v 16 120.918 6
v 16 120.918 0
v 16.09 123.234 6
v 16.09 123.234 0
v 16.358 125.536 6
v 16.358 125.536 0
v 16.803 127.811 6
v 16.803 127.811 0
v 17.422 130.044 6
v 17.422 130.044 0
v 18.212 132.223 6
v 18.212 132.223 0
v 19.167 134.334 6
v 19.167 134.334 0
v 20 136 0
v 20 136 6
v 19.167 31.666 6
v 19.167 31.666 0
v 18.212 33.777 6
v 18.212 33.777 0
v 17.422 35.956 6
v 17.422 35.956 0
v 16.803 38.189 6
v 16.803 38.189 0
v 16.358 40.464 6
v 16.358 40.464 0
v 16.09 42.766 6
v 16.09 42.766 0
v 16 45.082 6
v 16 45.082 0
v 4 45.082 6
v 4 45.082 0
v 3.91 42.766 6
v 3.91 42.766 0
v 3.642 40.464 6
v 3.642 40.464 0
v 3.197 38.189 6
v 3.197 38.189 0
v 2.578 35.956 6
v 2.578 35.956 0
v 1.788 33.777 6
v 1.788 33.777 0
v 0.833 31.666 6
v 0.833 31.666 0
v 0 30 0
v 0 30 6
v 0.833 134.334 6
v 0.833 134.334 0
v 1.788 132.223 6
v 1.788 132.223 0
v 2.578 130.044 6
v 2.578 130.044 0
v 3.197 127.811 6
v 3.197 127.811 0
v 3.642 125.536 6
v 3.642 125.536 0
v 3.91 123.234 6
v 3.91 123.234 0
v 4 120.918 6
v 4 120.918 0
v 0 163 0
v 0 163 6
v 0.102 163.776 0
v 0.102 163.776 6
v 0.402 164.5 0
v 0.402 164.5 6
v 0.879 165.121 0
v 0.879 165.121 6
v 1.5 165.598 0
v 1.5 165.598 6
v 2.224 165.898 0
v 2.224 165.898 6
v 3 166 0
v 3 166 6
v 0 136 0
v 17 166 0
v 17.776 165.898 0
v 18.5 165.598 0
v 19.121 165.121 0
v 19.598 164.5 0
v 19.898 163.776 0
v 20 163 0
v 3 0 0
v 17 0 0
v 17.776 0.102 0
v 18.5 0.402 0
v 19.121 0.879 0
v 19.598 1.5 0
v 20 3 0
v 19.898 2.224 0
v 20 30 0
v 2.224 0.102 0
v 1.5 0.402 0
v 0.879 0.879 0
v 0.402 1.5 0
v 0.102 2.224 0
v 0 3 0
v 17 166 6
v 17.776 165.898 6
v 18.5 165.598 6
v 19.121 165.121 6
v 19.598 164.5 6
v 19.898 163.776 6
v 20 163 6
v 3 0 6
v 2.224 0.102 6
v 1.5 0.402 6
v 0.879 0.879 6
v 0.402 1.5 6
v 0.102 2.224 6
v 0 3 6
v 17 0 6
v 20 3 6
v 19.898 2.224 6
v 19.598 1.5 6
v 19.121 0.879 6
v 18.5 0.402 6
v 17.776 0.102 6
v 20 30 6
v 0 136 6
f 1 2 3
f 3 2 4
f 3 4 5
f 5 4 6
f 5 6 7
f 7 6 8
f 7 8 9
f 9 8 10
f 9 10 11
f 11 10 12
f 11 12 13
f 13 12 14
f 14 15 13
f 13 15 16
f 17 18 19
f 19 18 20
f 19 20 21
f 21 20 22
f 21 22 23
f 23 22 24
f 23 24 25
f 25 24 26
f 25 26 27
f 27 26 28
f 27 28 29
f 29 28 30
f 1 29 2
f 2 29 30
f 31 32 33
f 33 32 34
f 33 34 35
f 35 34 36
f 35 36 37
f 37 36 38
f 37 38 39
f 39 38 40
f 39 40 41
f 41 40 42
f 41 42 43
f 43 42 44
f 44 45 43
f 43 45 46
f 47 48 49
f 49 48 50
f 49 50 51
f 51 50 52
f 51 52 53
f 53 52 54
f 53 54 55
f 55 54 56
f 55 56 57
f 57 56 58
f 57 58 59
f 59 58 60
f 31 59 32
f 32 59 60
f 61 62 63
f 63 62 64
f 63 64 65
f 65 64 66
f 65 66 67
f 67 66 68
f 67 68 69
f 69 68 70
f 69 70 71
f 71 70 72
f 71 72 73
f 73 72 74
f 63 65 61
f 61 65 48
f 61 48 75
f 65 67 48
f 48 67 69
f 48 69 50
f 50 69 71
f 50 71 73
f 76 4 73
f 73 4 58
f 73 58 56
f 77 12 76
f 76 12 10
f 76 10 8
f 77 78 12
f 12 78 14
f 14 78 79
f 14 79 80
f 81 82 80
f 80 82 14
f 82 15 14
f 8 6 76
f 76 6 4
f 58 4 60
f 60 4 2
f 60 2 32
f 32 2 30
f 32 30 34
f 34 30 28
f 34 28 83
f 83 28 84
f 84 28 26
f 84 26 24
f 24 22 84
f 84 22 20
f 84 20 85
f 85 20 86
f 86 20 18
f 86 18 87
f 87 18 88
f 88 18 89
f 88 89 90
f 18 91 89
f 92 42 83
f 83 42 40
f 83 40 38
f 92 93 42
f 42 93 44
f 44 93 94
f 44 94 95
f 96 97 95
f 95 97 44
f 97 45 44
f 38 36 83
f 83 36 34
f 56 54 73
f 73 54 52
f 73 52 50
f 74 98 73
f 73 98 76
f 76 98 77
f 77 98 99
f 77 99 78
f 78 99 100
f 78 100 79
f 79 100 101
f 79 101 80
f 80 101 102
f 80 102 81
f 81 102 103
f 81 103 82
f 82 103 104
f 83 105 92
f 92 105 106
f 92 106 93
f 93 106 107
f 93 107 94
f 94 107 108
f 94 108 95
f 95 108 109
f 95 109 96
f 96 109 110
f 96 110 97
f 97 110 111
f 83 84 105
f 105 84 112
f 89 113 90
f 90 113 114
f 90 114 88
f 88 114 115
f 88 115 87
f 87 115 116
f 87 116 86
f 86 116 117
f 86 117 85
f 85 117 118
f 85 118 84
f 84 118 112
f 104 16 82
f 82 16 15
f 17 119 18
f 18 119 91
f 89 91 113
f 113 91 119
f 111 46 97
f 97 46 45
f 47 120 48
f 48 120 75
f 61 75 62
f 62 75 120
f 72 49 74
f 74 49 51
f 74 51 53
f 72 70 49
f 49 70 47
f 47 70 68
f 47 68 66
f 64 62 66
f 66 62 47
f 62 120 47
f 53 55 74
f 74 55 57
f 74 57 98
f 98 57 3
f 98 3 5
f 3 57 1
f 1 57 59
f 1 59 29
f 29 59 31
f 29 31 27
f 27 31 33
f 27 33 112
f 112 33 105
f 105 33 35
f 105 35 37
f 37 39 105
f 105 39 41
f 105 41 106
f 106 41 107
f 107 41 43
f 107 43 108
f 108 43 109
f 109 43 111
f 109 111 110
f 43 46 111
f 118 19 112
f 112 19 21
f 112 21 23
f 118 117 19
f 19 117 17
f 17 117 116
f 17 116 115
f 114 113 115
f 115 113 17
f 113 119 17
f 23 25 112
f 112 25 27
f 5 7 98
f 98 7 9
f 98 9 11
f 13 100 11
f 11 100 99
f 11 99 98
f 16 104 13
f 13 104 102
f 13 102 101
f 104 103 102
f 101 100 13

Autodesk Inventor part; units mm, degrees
ref_plane "YZ Plane" through (0, 0, 0) normal (1, 0, 0) x (0, 1, 0)
ref_plane "XZ Plane" through (0, 0, 0) normal (0, 1, 0) x (-1, 0, 0)
ref_plane "XY Plane" through (0, 0, 0) normal (0, 0, 1) x (1, 0, 0)
sketch "Skizze1" plane through (0, 0, 0) normal (0, 0, 1) x (1, 0, 0)
  line L0 (0, 0) -> (20, 0)
  line L1 (20, 0) -> (20, 30)
  line L2 (20, 30) -> (0, 30)
  line L3 (0, 30) -> (0, 0)
  line L4 (4, 38) -> (16, 38)
  line L5 (16, 38) -> (16, 128)
  line L6 (16, 128) -> (4, 128)
  line L7 (4, 128) -> (4, 38)
  line L8 (0, 136) -> (20, 136)
  line L9 (20, 136) -> (20, 166)
  line L10 (20, 166) -> (0, 166)
  line L11 (0, 166) -> (0, 136)
  line L12 (0, 136) -> (4, 128)
  line L13 (4, 38) -> (0, 30)
  line L14 (16, 38) -> (20, 30)
  line L15 (20, 136) -> (16, 128)
  point P0 (10, 38)
  point P1 (10, 128)
  dimension "d0" = 20
  dimension "d1" = 30
  dimension "d2" = 20
  dimension "d3" = 30
  dimension "d4" = 10
  dimension "d5" = 90
  dimension "d6" = 8
  dimension "d7" = 8
  dimension "d8" = 10
  dimension "d9" = 12
extrude "Extrusion1" add sketch "Skizze1" along normal blind 6
fillet "Rundung1" radius 3 4 edges at (20, 0, 3) (0, 0, 3) (20, 166, 3) (0, 166, 3)
fillet "Rundung2" radius 30 4 edges at (4, 128, 3) (4, 38, 3) (16, 38, 3) (16, 128, 3)
properties part number "10x5_Probestück"
